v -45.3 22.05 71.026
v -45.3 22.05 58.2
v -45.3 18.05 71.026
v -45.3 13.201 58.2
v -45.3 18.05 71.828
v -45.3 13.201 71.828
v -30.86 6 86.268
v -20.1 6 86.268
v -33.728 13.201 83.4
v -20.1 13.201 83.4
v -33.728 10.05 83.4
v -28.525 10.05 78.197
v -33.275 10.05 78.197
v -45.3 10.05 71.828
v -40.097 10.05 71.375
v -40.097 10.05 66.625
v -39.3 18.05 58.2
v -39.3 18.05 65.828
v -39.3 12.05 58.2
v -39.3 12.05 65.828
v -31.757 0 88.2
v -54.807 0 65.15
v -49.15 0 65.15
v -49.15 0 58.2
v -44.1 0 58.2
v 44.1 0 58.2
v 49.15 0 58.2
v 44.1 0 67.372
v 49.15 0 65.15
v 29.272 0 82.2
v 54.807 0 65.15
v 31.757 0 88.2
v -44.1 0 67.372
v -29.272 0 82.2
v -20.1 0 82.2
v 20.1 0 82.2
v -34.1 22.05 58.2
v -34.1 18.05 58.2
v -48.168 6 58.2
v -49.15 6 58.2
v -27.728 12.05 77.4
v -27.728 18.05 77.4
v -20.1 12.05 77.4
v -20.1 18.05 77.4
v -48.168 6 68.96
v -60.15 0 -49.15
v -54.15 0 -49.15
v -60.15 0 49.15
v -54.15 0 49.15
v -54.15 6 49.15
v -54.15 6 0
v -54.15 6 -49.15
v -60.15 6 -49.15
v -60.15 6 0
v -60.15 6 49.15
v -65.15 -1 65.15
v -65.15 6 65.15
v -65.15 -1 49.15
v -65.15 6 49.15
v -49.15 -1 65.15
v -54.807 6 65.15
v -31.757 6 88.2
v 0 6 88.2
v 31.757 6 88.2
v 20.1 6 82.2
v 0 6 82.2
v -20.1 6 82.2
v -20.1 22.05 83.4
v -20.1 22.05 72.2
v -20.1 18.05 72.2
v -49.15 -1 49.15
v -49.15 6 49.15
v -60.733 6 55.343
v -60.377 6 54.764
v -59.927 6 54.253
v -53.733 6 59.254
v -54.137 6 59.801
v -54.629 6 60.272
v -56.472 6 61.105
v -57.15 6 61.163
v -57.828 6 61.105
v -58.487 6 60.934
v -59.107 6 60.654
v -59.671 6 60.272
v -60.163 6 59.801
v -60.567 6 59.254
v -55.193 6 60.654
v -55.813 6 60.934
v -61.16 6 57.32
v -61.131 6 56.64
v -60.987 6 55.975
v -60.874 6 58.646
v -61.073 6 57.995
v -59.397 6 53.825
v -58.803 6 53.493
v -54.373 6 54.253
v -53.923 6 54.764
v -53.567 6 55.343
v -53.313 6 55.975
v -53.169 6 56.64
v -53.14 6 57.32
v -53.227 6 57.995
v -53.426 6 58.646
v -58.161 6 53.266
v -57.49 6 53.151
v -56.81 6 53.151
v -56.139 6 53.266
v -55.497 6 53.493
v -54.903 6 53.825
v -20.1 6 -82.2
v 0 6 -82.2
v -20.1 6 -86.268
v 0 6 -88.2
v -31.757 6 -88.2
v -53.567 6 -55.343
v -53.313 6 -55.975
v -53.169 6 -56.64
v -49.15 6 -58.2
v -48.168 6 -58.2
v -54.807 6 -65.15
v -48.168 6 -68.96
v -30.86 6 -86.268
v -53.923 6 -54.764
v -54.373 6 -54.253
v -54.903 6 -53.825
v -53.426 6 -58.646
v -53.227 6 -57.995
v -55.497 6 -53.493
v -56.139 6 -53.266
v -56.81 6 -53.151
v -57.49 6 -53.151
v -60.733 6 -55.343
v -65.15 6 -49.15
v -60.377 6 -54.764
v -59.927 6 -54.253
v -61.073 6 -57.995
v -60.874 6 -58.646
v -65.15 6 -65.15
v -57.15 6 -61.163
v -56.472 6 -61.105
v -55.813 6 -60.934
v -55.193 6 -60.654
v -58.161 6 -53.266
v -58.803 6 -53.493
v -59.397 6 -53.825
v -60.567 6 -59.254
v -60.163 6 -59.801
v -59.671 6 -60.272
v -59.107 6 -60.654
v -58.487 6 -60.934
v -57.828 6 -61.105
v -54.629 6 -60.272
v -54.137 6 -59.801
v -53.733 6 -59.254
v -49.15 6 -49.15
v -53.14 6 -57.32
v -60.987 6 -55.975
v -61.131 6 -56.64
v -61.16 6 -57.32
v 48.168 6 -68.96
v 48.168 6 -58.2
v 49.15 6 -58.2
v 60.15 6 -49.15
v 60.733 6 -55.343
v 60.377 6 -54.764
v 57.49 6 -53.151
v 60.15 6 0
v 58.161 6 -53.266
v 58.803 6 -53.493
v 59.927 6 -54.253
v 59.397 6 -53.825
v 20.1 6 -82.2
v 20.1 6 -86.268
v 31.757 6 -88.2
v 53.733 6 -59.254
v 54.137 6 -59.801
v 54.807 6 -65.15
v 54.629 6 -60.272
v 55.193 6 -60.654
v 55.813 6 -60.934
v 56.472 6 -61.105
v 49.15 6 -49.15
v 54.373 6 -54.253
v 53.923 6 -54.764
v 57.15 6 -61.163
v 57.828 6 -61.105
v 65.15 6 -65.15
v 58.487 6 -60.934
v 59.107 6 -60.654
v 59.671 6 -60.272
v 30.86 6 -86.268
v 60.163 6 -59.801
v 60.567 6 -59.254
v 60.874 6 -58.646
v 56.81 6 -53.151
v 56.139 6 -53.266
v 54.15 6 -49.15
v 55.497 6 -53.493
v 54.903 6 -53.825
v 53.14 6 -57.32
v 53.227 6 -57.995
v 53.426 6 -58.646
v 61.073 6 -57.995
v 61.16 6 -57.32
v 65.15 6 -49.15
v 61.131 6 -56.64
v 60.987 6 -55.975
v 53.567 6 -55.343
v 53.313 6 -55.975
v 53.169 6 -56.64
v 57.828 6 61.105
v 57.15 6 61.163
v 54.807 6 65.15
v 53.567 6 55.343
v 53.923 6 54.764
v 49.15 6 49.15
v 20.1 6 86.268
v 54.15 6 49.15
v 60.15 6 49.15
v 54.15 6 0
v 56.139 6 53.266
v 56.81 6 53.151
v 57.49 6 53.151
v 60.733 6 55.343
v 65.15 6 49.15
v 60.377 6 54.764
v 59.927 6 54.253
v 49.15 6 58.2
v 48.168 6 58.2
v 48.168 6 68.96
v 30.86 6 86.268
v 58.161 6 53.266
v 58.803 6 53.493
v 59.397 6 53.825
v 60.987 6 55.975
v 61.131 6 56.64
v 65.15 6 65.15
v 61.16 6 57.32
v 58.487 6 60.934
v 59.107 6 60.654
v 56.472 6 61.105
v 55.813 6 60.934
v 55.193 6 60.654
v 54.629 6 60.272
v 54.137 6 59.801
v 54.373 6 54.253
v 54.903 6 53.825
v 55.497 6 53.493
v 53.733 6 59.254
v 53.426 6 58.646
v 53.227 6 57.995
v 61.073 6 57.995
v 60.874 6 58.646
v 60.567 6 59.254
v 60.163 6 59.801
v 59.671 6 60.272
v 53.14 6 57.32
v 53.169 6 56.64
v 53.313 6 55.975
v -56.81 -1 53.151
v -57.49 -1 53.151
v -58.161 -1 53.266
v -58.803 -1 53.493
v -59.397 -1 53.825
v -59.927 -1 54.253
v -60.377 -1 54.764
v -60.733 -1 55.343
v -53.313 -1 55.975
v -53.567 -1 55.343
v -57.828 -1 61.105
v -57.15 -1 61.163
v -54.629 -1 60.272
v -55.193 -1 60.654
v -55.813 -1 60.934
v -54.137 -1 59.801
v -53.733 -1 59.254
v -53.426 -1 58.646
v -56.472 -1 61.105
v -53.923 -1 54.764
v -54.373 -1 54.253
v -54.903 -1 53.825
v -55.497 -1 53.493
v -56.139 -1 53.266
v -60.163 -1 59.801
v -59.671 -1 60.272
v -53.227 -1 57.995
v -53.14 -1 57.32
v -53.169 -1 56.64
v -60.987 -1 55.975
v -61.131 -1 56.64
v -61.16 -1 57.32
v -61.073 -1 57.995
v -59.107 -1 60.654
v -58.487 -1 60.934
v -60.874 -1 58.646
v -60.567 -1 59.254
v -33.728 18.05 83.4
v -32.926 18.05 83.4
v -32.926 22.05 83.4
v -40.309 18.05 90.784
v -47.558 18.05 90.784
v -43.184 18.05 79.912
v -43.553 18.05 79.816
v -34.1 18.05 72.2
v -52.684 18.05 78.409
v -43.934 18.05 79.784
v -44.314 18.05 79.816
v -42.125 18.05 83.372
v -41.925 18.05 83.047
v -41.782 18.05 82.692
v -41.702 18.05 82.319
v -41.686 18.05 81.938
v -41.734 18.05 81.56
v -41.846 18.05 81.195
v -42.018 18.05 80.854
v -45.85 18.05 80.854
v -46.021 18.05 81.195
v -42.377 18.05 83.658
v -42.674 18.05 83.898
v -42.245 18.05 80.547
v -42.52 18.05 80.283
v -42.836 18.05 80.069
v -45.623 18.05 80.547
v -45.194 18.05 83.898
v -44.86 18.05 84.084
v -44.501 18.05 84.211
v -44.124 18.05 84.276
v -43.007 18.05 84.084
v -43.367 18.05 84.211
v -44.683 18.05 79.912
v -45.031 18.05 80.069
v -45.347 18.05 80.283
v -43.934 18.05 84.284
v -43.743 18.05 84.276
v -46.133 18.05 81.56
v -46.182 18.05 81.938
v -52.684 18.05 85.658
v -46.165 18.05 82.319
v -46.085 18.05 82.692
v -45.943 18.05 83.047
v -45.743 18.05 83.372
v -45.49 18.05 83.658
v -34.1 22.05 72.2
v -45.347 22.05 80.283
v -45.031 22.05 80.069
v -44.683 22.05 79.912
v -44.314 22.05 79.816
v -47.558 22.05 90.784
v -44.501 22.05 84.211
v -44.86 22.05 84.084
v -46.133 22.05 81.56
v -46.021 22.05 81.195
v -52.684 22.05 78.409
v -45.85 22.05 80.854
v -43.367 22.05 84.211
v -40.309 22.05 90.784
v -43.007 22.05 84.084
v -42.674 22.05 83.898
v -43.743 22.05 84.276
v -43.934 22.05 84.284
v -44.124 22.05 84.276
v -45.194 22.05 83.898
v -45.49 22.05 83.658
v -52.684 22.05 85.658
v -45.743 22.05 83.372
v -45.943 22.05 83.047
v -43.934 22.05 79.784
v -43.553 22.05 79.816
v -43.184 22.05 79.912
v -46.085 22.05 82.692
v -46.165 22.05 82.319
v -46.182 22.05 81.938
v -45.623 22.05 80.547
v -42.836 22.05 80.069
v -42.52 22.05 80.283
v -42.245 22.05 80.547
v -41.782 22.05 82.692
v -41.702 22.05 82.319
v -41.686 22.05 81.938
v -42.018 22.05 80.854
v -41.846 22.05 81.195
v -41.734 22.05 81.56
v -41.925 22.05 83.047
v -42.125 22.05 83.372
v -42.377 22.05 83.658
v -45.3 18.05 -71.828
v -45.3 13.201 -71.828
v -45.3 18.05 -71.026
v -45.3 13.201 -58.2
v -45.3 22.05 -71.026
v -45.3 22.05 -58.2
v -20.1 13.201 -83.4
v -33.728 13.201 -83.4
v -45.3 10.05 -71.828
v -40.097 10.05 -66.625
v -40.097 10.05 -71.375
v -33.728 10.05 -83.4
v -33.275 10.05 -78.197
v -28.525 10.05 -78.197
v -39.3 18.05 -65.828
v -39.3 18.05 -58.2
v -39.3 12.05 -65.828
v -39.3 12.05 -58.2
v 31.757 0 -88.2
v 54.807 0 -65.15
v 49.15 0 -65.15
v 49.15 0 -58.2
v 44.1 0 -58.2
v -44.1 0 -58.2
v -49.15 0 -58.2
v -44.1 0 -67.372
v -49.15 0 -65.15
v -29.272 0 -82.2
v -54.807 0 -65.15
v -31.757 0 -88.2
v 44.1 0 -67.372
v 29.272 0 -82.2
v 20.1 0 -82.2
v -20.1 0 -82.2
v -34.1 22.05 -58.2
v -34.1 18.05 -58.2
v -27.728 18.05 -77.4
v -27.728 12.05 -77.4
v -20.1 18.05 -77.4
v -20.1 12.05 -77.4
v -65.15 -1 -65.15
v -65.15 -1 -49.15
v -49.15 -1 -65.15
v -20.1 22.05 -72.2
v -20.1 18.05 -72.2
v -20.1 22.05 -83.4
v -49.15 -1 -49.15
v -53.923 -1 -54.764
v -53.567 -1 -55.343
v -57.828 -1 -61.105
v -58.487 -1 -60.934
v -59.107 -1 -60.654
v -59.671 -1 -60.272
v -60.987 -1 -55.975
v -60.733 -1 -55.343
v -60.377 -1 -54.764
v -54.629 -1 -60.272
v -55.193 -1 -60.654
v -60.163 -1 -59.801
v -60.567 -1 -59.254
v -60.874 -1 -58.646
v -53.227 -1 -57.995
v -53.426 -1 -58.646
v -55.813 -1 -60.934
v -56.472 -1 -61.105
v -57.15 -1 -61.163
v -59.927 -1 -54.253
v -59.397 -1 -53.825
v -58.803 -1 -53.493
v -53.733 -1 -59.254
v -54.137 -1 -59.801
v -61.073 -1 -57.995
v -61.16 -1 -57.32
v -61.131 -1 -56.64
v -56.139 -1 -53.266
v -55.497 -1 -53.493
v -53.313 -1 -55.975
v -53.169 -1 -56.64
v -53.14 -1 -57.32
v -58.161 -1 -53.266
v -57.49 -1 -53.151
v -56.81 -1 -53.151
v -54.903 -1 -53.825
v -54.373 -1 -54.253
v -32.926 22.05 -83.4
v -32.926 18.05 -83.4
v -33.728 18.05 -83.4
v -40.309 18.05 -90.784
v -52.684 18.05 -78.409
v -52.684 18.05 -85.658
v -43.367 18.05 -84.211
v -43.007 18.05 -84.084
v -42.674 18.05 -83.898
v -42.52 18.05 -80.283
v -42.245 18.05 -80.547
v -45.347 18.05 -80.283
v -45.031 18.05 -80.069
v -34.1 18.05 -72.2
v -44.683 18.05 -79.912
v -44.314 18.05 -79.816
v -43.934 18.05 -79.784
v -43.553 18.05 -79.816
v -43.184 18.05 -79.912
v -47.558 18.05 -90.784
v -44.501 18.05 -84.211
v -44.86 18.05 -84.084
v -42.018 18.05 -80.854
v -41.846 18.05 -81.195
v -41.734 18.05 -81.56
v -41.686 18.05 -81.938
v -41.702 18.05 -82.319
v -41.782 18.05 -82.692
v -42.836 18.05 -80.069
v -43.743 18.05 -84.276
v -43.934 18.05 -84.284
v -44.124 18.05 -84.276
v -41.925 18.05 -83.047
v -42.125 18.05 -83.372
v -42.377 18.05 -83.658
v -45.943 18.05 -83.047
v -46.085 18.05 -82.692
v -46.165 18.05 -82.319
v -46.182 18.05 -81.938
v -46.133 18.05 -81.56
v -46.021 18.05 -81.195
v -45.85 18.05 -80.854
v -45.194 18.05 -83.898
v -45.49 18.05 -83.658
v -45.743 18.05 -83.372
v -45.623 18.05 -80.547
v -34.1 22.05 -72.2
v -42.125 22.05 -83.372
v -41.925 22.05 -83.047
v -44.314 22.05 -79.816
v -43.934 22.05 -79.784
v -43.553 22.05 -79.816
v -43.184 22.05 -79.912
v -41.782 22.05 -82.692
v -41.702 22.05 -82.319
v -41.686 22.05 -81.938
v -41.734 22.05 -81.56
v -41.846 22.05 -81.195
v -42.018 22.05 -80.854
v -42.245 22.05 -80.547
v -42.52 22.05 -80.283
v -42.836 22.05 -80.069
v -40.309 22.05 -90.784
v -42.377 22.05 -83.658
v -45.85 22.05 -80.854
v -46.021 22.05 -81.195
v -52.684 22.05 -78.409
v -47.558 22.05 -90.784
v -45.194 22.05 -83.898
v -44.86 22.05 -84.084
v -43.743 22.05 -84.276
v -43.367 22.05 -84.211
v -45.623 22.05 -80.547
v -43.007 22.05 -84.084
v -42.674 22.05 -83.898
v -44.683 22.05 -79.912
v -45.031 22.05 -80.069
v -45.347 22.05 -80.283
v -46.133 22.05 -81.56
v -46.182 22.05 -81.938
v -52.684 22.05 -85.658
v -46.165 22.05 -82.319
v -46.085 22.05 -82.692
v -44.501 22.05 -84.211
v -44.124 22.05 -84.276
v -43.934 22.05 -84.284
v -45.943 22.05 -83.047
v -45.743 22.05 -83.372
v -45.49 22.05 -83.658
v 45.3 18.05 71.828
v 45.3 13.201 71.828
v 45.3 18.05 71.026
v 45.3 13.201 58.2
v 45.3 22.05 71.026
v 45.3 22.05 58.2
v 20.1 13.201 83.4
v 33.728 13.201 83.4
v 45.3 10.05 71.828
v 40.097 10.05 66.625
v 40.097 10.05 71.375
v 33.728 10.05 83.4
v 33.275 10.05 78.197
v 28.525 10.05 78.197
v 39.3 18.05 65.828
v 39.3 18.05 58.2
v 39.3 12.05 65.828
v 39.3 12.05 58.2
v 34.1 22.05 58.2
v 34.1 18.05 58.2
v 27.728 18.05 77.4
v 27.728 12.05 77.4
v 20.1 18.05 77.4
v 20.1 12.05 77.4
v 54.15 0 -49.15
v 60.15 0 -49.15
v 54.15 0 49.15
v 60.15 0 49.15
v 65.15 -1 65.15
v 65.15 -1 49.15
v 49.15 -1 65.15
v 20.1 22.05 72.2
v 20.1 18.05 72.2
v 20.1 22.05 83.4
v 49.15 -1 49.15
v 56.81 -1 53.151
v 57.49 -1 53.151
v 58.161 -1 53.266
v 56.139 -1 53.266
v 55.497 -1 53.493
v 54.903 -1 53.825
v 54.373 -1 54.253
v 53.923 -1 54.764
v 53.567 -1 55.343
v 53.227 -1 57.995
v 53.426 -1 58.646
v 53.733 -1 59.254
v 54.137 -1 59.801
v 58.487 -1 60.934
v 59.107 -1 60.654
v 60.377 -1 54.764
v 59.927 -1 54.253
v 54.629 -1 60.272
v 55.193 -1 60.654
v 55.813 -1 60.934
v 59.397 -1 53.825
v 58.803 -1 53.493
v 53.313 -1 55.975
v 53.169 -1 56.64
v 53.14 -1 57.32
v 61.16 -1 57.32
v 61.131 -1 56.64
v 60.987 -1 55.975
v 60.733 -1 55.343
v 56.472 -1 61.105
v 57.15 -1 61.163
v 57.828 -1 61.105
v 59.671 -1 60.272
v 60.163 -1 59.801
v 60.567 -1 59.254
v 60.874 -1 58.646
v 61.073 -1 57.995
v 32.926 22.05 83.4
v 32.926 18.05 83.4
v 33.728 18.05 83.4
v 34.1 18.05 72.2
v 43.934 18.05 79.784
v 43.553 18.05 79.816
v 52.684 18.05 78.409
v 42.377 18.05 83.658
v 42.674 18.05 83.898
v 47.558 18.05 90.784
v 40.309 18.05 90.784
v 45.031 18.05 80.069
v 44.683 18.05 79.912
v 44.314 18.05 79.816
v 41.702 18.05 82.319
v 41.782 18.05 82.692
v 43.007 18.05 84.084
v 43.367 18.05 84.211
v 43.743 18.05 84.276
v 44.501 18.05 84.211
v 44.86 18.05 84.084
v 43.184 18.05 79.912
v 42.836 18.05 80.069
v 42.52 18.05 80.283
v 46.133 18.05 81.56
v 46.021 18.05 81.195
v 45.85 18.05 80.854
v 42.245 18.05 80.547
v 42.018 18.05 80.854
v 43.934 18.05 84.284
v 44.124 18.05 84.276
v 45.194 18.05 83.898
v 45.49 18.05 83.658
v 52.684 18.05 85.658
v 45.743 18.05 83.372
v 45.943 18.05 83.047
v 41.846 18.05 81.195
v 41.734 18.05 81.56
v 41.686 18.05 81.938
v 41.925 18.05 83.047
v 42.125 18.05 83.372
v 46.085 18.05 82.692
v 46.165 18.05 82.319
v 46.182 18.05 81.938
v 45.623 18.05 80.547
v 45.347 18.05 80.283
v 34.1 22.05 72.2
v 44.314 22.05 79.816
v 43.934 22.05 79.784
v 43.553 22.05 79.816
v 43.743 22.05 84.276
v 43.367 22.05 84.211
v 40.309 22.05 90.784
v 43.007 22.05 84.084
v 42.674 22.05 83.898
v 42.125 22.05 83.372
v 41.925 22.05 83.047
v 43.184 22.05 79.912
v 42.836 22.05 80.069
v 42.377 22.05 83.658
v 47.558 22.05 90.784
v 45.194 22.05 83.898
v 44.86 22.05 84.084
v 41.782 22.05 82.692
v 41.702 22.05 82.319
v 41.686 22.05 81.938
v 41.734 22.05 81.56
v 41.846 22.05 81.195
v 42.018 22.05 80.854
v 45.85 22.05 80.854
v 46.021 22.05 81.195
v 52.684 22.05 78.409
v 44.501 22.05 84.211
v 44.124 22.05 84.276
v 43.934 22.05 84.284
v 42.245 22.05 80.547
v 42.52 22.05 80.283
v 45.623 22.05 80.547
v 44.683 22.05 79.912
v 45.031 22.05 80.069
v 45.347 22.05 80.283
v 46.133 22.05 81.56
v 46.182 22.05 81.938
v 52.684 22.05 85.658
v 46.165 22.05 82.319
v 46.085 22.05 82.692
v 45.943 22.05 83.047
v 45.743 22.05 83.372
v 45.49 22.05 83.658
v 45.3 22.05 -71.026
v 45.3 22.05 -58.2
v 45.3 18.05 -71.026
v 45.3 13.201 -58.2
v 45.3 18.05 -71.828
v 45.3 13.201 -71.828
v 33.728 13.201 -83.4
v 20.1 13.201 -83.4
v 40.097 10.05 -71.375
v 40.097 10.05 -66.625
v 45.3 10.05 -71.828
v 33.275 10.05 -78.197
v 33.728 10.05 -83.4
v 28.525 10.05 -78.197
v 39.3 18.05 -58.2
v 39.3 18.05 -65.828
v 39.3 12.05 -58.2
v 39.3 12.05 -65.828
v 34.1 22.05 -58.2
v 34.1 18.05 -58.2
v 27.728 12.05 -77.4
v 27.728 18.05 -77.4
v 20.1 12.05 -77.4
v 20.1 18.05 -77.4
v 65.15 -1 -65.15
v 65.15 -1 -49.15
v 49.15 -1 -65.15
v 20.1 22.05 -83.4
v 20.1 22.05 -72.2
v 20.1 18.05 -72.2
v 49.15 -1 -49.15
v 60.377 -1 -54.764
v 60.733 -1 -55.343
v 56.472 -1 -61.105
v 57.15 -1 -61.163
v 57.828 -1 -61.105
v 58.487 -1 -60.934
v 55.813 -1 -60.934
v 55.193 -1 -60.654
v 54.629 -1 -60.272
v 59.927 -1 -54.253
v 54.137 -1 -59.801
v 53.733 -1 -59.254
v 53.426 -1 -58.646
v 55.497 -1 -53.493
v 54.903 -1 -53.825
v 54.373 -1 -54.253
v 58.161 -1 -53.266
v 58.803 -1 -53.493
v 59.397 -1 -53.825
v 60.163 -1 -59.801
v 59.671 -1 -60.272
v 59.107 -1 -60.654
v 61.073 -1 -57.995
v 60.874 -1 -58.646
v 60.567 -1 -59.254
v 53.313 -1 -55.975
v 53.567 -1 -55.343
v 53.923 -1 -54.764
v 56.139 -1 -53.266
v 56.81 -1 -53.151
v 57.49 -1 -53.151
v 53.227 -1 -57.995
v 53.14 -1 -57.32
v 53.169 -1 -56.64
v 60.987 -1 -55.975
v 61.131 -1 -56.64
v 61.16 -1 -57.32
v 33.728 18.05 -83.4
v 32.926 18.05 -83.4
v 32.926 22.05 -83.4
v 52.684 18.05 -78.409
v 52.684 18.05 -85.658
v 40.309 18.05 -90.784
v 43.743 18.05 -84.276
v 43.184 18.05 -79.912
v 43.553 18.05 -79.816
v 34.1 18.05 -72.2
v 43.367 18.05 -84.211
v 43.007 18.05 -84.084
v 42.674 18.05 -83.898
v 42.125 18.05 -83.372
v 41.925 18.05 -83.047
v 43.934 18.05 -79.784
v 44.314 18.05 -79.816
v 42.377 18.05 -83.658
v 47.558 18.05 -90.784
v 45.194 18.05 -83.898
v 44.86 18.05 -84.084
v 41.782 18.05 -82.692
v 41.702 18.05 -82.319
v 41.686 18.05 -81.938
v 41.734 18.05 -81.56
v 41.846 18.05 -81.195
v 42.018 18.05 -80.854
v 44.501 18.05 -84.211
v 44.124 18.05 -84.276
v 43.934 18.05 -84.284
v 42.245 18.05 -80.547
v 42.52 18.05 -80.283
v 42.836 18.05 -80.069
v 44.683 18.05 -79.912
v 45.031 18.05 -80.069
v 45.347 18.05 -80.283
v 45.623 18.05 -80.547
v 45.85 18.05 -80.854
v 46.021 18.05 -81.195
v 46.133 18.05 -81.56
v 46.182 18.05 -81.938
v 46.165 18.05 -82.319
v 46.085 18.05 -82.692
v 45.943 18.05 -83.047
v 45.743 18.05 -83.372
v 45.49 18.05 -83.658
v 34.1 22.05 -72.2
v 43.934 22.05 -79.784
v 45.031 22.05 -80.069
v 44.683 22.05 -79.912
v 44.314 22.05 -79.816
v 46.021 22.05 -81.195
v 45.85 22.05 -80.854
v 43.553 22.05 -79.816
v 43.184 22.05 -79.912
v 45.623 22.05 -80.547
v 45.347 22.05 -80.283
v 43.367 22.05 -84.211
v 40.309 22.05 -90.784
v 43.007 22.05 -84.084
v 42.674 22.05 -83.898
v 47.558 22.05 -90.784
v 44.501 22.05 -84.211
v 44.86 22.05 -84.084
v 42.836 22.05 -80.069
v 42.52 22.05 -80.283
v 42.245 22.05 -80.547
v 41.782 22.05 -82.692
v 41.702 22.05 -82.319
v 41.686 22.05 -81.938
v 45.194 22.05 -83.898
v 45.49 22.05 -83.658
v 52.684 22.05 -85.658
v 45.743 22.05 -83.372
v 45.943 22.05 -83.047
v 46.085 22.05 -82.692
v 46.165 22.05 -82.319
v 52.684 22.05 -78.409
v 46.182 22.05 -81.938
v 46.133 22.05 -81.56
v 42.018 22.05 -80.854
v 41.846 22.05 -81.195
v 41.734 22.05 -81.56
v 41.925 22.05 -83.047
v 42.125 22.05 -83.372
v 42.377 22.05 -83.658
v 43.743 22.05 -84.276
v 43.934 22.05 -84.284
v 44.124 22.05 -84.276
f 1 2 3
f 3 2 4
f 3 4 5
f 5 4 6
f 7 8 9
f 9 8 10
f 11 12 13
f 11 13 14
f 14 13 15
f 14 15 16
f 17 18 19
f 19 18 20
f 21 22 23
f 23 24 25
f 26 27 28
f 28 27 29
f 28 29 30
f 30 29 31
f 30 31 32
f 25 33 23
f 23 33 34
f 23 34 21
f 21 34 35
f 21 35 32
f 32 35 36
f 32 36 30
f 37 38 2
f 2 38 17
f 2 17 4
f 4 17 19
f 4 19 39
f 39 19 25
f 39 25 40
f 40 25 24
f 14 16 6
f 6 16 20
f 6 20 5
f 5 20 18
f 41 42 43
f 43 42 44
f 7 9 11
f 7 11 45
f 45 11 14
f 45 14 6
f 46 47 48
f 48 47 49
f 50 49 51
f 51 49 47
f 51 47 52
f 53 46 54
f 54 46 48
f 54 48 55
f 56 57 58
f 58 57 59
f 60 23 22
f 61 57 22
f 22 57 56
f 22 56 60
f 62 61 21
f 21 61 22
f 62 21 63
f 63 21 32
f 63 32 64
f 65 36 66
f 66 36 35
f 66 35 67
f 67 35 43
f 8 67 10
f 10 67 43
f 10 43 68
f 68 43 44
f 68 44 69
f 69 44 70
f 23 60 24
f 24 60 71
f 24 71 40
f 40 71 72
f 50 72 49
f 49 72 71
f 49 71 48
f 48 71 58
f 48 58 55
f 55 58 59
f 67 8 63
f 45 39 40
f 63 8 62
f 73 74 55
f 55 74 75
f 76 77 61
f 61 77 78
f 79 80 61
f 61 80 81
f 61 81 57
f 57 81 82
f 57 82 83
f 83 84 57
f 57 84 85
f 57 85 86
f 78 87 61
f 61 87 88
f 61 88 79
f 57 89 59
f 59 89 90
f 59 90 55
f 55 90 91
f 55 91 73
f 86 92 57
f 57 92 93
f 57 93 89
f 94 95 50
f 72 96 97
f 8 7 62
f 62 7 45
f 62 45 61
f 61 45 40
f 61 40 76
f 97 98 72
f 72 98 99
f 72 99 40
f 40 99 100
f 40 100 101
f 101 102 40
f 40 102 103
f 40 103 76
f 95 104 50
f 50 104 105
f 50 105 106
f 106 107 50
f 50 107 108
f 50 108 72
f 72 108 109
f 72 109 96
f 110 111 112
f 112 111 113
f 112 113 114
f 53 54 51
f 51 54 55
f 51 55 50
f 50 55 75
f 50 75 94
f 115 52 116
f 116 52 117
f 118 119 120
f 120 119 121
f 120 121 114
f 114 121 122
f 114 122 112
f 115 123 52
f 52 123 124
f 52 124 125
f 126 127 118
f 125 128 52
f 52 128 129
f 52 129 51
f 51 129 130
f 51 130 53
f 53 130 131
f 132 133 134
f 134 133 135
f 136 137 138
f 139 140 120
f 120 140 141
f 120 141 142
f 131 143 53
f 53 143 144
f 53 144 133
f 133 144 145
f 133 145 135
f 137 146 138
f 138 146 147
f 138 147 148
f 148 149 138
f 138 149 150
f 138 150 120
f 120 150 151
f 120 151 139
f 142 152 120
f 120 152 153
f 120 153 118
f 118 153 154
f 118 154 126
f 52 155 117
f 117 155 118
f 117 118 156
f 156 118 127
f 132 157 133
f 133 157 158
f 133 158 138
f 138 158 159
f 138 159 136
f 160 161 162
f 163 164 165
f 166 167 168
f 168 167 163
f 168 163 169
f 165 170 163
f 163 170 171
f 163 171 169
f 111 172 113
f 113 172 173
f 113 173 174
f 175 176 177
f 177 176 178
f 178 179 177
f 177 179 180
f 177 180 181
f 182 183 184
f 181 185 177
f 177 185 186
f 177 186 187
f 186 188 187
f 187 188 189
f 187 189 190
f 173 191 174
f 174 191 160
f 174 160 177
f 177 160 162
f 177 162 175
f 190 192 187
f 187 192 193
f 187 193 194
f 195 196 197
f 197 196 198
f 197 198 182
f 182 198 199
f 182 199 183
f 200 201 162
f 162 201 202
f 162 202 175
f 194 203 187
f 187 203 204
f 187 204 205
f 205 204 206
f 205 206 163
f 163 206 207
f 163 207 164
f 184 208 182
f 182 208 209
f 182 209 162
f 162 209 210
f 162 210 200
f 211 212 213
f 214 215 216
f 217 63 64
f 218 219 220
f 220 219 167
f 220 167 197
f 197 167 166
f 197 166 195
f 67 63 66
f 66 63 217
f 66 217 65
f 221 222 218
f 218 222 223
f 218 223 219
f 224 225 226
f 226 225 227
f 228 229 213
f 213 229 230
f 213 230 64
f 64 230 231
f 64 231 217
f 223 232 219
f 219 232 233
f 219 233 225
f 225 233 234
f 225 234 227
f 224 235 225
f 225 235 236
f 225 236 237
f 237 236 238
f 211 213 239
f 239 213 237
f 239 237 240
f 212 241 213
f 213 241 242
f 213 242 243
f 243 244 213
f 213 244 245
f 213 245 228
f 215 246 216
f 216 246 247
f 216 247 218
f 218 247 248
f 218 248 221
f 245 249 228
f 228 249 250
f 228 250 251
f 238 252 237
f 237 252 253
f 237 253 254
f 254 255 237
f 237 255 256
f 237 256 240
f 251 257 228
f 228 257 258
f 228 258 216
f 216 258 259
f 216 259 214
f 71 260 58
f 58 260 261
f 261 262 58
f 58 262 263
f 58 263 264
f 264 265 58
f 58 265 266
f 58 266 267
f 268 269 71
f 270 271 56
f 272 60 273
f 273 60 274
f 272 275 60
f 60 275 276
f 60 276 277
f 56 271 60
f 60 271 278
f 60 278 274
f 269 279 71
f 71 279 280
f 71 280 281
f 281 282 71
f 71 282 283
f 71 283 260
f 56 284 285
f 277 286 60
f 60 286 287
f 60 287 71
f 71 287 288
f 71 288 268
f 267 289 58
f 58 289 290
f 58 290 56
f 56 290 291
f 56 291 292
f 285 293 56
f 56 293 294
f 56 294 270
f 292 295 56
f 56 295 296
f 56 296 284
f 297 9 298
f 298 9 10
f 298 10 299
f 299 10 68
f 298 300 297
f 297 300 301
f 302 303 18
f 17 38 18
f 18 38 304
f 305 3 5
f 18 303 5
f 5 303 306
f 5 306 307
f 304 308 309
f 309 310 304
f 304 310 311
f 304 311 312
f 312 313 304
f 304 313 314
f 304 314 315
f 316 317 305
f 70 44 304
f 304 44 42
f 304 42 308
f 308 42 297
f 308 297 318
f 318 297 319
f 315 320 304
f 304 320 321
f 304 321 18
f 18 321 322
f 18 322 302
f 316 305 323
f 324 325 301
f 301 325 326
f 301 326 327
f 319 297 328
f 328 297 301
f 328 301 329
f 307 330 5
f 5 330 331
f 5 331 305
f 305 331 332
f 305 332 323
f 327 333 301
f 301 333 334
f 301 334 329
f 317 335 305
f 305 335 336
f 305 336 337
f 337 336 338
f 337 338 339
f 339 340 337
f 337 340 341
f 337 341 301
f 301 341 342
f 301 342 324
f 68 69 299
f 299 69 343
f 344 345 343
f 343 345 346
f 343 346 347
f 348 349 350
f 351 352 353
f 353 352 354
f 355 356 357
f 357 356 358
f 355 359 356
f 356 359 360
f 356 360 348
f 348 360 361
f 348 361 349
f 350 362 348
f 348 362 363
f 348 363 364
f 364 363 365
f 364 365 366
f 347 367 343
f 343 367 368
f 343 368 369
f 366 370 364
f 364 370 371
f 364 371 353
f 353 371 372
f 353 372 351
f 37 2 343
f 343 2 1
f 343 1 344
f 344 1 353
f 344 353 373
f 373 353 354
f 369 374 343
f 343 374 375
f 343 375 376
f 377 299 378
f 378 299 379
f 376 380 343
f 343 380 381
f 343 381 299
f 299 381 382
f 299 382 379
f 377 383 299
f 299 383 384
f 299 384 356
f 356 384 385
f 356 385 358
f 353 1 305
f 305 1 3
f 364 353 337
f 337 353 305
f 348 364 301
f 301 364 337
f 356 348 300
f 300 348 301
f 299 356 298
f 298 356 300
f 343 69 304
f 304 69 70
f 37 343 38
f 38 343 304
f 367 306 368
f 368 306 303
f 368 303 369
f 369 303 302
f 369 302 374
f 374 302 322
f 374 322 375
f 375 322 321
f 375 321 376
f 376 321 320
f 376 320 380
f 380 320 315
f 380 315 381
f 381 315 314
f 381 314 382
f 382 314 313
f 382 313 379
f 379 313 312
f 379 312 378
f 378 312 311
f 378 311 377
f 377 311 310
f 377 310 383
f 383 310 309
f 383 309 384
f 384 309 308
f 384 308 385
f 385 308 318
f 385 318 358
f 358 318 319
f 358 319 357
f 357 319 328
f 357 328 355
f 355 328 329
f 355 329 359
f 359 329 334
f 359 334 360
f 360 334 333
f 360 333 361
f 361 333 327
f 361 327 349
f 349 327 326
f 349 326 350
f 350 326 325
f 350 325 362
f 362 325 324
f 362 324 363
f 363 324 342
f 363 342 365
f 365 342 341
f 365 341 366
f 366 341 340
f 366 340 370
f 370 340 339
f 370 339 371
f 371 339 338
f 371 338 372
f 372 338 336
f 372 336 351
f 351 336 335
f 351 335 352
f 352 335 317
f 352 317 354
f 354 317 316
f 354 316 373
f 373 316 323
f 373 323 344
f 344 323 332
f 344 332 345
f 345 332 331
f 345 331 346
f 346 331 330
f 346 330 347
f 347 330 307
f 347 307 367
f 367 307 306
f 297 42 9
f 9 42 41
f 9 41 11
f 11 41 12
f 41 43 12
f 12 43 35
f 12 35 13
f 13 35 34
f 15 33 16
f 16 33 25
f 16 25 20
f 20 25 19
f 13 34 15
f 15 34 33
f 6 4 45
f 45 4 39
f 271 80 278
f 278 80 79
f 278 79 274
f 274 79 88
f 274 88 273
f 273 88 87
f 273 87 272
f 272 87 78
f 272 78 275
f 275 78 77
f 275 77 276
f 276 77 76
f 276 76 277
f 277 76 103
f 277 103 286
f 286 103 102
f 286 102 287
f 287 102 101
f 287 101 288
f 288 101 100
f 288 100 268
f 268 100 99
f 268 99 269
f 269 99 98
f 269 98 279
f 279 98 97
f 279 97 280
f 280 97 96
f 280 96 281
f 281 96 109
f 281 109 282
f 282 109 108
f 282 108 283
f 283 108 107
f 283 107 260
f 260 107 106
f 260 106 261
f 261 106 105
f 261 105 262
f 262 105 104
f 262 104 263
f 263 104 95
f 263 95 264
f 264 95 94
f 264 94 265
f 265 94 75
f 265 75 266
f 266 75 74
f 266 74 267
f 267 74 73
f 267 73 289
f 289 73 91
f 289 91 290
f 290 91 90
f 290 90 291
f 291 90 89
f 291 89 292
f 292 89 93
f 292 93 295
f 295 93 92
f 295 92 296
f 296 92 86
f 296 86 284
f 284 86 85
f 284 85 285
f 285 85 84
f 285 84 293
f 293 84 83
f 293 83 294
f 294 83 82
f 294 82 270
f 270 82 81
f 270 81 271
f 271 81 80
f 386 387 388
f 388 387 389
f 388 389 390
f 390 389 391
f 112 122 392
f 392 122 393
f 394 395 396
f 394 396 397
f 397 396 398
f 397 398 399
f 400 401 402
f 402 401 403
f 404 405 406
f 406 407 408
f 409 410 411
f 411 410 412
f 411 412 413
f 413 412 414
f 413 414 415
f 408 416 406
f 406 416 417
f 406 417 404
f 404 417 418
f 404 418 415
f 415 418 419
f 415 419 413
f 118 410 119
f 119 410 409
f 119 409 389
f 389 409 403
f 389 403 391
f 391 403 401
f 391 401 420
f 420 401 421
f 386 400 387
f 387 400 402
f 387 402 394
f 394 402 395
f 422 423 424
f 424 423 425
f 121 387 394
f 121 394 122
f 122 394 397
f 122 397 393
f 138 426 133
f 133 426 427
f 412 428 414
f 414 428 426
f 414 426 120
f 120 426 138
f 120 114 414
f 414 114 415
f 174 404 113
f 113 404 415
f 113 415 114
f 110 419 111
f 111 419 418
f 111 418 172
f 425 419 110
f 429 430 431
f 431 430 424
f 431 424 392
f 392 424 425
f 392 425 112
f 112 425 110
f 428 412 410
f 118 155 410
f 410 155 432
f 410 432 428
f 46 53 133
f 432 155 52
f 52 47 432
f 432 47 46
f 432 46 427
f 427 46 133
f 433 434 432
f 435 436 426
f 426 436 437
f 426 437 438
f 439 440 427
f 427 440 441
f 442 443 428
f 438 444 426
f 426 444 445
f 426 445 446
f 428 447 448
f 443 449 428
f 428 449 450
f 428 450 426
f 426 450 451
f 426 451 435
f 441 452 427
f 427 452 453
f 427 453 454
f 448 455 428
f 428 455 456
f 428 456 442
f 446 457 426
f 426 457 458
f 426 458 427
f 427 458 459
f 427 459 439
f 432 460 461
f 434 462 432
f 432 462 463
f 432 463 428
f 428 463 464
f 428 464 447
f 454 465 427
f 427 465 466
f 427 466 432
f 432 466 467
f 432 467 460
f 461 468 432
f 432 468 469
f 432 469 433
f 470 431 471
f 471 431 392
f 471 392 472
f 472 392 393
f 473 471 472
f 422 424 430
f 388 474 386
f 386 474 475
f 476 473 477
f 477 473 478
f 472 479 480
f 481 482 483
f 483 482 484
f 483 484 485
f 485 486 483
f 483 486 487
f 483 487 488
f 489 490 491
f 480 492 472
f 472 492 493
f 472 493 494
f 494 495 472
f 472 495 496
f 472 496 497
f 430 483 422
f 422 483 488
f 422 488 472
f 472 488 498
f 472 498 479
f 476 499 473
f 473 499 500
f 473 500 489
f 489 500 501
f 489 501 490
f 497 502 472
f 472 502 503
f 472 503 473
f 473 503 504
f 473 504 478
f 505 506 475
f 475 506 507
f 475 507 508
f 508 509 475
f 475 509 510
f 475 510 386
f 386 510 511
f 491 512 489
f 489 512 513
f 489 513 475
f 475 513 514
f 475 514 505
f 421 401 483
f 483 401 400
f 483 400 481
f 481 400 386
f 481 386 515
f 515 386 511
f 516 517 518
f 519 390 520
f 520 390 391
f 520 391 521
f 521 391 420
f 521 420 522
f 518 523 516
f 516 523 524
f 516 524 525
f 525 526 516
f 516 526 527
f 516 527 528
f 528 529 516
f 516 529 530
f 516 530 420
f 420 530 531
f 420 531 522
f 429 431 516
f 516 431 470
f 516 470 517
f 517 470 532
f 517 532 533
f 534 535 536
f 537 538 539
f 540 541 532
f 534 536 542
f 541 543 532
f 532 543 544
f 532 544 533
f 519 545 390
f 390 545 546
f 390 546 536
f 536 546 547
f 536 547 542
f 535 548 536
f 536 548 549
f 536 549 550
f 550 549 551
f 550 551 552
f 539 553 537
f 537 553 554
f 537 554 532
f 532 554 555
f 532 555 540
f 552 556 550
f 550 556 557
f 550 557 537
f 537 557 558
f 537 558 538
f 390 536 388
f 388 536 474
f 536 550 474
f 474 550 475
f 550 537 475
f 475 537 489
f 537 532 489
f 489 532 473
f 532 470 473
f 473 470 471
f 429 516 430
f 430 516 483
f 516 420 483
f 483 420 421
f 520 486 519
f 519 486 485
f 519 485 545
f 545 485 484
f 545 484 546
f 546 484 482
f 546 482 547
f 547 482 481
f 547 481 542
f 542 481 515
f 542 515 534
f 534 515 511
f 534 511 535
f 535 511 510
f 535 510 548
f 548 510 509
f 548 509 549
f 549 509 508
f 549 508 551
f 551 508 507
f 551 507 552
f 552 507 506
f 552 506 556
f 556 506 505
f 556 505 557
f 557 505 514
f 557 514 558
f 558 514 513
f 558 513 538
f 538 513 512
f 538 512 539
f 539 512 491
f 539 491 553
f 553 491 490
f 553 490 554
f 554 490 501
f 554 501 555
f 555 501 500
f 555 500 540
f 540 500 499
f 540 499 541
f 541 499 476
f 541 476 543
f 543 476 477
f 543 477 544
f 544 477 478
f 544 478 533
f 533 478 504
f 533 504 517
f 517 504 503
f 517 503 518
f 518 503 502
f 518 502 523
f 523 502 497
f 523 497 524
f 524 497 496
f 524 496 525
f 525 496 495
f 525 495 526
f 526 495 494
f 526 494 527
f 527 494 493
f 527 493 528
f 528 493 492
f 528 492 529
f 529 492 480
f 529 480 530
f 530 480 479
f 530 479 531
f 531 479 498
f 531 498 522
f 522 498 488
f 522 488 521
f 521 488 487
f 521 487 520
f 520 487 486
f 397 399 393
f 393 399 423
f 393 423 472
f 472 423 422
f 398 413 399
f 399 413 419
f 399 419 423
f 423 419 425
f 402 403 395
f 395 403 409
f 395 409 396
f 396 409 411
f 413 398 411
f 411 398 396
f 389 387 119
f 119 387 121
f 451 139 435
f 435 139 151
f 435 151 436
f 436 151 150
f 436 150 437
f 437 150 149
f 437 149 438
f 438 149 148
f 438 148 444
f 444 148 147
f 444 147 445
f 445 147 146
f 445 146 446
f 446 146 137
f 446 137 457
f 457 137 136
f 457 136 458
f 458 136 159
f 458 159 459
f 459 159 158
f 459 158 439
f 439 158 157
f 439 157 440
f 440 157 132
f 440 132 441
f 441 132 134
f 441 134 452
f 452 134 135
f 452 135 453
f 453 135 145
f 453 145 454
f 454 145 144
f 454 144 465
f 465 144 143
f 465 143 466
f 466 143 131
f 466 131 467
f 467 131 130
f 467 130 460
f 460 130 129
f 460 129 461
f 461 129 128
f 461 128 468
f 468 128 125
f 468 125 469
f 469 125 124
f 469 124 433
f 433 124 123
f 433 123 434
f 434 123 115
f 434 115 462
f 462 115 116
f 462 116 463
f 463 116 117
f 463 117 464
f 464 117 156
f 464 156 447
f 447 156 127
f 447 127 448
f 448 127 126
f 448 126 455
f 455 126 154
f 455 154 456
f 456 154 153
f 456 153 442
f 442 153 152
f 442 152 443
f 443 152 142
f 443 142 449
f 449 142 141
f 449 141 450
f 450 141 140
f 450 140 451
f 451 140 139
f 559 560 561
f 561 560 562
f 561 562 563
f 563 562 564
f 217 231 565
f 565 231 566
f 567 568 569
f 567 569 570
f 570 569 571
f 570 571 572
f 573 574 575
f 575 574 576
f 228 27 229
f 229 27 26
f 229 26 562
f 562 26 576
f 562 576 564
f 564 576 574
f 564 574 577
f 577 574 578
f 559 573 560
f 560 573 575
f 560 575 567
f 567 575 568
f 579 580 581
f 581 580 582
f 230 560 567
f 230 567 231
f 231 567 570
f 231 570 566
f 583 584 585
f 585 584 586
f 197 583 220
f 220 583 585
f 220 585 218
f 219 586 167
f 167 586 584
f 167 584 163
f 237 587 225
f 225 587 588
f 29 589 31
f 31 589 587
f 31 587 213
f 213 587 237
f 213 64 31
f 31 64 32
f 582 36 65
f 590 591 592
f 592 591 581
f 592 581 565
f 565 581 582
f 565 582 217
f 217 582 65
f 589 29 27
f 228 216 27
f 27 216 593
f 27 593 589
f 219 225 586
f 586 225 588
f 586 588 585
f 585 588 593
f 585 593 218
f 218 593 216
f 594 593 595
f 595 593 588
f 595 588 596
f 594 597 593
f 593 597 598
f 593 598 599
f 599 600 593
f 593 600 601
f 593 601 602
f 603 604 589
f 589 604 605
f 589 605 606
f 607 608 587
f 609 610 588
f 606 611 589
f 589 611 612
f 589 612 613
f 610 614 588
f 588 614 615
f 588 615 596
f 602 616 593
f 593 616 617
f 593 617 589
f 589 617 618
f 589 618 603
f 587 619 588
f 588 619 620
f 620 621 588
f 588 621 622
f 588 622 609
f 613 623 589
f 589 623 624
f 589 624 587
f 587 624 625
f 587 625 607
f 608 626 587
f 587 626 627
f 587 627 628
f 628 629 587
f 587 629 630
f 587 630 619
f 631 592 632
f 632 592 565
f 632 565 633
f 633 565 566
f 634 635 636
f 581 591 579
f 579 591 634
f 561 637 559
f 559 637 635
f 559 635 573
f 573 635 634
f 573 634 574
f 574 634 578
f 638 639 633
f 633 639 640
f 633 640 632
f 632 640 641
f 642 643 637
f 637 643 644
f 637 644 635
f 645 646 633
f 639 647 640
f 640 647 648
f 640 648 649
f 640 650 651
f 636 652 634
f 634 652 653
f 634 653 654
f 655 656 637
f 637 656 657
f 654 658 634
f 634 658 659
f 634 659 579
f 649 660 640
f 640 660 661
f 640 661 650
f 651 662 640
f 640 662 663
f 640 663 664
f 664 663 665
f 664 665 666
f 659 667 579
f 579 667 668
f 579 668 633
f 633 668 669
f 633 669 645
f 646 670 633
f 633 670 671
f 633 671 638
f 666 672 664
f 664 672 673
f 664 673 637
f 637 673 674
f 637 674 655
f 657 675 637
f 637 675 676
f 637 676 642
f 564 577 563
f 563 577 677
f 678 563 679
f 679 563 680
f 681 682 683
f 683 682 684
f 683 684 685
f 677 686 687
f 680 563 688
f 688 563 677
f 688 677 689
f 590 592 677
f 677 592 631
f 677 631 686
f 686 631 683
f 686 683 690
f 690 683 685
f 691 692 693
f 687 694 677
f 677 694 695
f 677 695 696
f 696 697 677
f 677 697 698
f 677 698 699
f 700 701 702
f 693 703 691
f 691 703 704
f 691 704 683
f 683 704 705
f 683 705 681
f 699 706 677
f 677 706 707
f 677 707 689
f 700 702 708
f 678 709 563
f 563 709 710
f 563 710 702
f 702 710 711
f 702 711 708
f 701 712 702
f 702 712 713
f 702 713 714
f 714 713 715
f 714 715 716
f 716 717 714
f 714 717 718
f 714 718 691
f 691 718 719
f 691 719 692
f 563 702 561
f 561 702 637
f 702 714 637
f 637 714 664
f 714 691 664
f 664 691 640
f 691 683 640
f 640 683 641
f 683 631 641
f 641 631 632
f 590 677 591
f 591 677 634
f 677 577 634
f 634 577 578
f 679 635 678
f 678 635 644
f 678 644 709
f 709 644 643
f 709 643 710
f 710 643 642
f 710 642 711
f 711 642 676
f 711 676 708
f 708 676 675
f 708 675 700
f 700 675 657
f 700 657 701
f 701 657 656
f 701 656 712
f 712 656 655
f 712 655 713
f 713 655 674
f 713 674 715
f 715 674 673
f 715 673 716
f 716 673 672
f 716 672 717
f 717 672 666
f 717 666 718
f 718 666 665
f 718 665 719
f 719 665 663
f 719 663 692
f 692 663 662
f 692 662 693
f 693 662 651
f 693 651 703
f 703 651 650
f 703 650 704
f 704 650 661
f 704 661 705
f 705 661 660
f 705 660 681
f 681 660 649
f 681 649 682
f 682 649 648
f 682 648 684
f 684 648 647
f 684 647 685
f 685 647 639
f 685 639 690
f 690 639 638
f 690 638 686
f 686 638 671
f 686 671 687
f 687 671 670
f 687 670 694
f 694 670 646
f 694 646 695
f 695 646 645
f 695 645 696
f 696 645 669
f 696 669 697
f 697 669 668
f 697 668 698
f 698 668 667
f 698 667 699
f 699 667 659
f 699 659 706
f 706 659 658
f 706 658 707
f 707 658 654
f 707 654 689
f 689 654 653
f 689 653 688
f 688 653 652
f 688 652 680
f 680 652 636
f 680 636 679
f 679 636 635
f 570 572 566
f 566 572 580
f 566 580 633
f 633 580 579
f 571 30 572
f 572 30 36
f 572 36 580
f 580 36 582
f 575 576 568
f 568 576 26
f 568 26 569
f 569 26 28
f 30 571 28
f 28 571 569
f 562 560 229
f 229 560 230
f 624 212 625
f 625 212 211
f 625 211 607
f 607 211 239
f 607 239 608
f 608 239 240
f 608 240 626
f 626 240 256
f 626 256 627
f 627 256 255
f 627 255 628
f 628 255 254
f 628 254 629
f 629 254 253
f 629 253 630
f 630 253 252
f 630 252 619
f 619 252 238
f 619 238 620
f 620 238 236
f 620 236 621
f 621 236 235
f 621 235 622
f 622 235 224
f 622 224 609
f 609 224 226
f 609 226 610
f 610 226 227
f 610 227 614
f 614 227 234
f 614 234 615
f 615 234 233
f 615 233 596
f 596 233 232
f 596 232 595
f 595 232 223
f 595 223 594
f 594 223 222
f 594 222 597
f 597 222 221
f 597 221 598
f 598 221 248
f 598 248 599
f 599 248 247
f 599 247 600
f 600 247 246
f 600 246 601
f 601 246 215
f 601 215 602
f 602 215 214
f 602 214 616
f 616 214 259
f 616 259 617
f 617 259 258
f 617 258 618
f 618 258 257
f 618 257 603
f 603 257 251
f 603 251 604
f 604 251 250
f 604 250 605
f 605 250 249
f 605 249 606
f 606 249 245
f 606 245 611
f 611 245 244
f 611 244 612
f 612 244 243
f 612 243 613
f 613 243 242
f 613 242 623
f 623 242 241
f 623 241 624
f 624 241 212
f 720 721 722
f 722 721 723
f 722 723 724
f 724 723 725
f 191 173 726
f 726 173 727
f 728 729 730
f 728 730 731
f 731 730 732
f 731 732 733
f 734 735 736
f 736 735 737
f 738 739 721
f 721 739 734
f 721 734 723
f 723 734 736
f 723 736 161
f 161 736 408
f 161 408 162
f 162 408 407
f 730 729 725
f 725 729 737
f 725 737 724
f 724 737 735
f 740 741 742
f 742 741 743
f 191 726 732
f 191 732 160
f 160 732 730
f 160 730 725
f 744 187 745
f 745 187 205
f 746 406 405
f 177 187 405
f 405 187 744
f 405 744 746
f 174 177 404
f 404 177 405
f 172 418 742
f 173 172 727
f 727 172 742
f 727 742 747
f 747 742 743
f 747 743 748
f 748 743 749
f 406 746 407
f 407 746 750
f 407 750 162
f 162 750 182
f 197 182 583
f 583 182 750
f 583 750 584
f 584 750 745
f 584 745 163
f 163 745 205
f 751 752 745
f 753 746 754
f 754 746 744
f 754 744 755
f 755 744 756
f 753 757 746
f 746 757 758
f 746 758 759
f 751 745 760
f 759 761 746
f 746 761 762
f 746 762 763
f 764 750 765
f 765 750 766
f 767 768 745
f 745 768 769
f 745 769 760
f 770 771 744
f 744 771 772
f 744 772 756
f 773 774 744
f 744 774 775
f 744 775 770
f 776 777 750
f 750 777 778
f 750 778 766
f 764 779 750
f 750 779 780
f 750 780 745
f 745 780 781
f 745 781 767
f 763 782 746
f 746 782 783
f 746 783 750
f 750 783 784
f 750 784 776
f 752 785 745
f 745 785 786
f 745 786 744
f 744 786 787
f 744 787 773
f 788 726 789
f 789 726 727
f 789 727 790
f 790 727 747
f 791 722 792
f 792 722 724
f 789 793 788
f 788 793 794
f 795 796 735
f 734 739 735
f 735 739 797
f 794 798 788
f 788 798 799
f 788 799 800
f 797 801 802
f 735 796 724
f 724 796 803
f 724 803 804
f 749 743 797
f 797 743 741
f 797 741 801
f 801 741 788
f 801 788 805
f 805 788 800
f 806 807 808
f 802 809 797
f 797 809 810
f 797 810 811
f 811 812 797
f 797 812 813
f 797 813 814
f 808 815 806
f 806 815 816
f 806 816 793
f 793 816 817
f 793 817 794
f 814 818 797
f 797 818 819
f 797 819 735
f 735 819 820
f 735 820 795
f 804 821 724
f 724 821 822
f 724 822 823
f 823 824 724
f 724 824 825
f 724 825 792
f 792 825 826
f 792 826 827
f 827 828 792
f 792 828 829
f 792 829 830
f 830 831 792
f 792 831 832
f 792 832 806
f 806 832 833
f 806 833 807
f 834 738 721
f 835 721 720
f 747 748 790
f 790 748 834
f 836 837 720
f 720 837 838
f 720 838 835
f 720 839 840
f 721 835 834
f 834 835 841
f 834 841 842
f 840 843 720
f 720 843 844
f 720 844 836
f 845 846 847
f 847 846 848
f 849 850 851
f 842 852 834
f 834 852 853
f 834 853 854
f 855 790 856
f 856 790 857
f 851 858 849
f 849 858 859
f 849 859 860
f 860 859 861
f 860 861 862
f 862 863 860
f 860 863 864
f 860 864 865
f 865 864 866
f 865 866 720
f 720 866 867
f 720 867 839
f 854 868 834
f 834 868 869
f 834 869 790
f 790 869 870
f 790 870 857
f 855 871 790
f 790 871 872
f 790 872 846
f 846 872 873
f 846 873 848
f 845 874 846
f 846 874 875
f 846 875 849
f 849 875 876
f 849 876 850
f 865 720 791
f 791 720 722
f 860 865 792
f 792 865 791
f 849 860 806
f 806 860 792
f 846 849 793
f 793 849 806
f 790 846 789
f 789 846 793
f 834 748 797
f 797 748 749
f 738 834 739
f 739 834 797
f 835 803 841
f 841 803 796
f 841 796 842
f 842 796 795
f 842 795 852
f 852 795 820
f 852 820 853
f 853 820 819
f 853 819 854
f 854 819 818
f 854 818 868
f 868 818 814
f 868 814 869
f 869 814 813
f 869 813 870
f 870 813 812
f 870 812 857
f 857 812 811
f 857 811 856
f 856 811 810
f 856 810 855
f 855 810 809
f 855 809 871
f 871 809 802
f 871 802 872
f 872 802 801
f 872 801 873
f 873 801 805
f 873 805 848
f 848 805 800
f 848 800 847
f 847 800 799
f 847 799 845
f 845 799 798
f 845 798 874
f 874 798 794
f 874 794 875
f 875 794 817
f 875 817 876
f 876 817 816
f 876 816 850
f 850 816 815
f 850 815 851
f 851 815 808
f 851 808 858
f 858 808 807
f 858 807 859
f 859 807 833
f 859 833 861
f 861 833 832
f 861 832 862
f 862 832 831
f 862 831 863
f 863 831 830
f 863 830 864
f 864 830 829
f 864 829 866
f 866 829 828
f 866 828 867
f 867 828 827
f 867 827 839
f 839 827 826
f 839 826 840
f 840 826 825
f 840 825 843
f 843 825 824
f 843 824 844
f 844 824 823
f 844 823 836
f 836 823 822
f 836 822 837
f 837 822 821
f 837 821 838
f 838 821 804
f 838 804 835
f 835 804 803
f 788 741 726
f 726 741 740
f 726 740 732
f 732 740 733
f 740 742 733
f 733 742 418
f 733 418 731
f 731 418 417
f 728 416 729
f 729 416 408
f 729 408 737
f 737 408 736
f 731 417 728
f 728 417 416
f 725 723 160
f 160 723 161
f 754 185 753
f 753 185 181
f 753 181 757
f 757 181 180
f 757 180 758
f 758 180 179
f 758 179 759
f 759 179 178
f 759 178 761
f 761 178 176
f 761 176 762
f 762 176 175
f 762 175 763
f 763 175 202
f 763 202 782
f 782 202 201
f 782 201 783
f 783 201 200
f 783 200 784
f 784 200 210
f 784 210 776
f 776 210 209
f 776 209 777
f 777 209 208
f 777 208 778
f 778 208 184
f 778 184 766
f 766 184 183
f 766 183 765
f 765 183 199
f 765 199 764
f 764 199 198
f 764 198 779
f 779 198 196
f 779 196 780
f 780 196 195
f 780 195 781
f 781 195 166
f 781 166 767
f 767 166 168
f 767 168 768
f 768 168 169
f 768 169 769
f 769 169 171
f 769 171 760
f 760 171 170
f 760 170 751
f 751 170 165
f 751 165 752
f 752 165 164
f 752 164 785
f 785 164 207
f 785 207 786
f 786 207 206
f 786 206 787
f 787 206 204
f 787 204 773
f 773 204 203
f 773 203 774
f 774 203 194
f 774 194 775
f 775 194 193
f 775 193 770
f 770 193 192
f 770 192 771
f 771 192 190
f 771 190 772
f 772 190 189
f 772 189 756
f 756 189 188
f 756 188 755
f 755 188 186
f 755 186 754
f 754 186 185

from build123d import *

# Parameters (mm, degrees)
BOSS_EXTRUDE1_DEPTH            = 6
BOSS_EXTRUDE2_DEPTH            = 1
BOSS_EXTRUDE3_DEPTH            = 12.05
SKETCH4_R                      = 2.25
BOSS_EXTRUDE4_DEPTH            = 4
CUT_EXTRUDE1_REACH             = 87.707
SKETCH5_W                      = 16.364675298
SKETCH5_H                      = 8
CUT_EXTRUDE1_DIRECTION_2_DEPTH = 86.707273439
CUT_EXTRUDE2_DEPTH             = 9.171573
CUT_EXTRUDE3_REACH             = 114.79
SKETCH8_W                      = 3.39411255
SKETCH8_H                      = 10.05
CUT_EXTRUDE3_DIRECTION_2_REACH = 114.79
BOSS_EXTRUDE5_DEPTH            = 13.628427
CUT_EXTRUDE4_DEPTH             = 113.7898768
SKETCH12_R                     = 4.0132
CUT_EXTRUDE5_DEPTH             = 113.888407941


with BuildPart() as part:
    # Sketch1 → Boss-Extrude1 (new body)
    with BuildSketch(Plane(origin=(0, 0, 0), x_dir=(1, 0, 0), z_dir=(0, 1, 0))):
        Polygon((-54.15, 0), (-60.15, 0), (-60.15, -49.15), (-65.15, -49.15), (-65.15, -65.15), (-54.806854249, -65.15), (-31.756854249, -88.2), (0, -88.2), (0, -82.2), (-20.1, -82.2), (-20.1, -77.4), (-31.243145751, -77.4), (-39.3, -69.343145751), (-39.3, -58.2), (-49.15, -58.2), (-49.15, -49.15), (-54.15, -49.15), align=None)
    extrude(amount=BOSS_EXTRUDE1_DEPTH)

    # Sketch2 → Boss-Extrude2 (add)
    with BuildSketch(Plane.XZ):
        Polygon((-49.15, 58.2), (-49.15, 49.15), (-65.15, 49.15), (-65.15, 65.15), (-49.15, 65.15), align=None)
    extrude(amount=BOSS_EXTRUDE2_DEPTH)

    # Sketch3 → Boss-Extrude3 (add)
    with BuildSketch(Plane(origin=(0, 6, 0), x_dir=(1, 0, 0), z_dir=(0, 1, 0))):
        Polygon((-39.3, -58.2), (-45.3, -58.2), (-45.3, -71.828427125), (-33.728427125, -83.4), (-20.1, -83.4), (-20.1, -77.4), (-31.243145751, -77.4), (-39.3, -69.343145751), align=None)
    extrude(amount=BOSS_EXTRUDE3_DEPTH)

    # Sketch4 → Boss-Extrude4 (add)
    with BuildSketch(Plane(origin=(0, 18.05, 0), x_dir=(1, 0, 0), z_dir=(0, 1, 0))):
        Polygon((-45.3, -58.2), (-34.1, -58.2), (-34.1, -72.2), (-20.1, -72.2), (-20.1, -83.4), (-32.925631329, -83.4), (-40.309262274, -90.783630945), (-47.557999616, -90.783630945), (-52.683630945, -85.657999616), (-52.683630945, -78.409262274), (-45.3, -71.025631329), align=None)
        with Locations(Location((-43.933630945, -82.033630945, 0), (0, 0, 270))):
            Circle(SKETCH4_R, mode=Mode.SUBTRACT)
    extrude(amount=BOSS_EXTRUDE4_DEPTH)

    # Sketch5 → Cut-Extrude1 (cut, up to next)
    with BuildSketch(Plane(origin=(-58.564213562, 0, 58.564213562), x_dir=(0.7071067811865475, 0, 0.7071067811865477), z_dir=(-0.7071067811865477, 0, 0.7071067811865475)), mode=Mode.PRIVATE) as cut_extrude1_sk1:
        with Locations((26.940768363, 14.05)):
            Rectangle(SKETCH5_W, SKETCH5_H)
    cut_extrude1_tool1 = extrude(cut_extrude1_sk1.sketch, amount=-CUT_EXTRUDE1_REACH, mode=Mode.PRIVATE) & part.part
    add(cut_extrude1_tool1.solids().sort_by_distance((-39.514214, 14.05, 77.614214))[0], mode=Mode.SUBTRACT)

    # Sketch5 → Cut-Extrude1 direction 2 (cut)
    with BuildSketch(Plane(origin=(-58.564213562, 0, 58.564213562), x_dir=(0.7071067811865475, 0, 0.7071067811865477), z_dir=(-0.7071067811865477, 0, 0.7071067811865475))):
        with Locations((26.940768363, 14.05)):
            Rectangle(SKETCH5_W, SKETCH5_H)
    extrude(amount=CUT_EXTRUDE1_DIRECTION_2_DEPTH, mode=Mode.SUBTRACT)

    # Sketch6 → Cut-Extrude2 (cut)
    with BuildSketch(Plane(origin=(-20.1, 0, 0), x_dir=(0, 0, -1), z_dir=(1, 0, 0))):
        Polygon((-82.2, 0), (-77.4, 12.05), (-77.4, 0), align=None)
    cut_extrude2 = extrude(amount=-CUT_EXTRUDE2_DEPTH, mode=Mode.SUBTRACT)

    # Mirror1: Cut-Extrude2 across plane
    add(cut_extrude2.mirror(Plane(origin=(19.05, 0, 19.05), x_dir=(-0.7071067811865477, 0, 0.7071067811865474), z_dir=(0.7071067811865476, 0, 0.7071067811865476))), mode=Mode.SUBTRACT)

    # Cut-Extrude3: up to this plane
    cut_extrude3_end = Plane(origin=(-44.1, 0, 67.371572875), z_dir=(0.9290074363039443, -0.3700610534654694, 0))
    # Sketch8 → Cut-Extrude3 (cut, up to the surface)
    with BuildSketch(Plane(origin=(19.05, 0, 19.05), x_dir=(0.7071067811865476, 0, -0.7071067811865476), z_dir=(0.7071067811865476, 0, 0.7071067811865476)), mode=Mode.PRIVATE) as cut_extrude3_sk1:
        with Locations((-77.125248815, 5.025)):
            Rectangle(SKETCH8_W, SKETCH8_H)
    cut_extrude3_tool1 = split(extrude(cut_extrude3_sk1.sketch, amount=-CUT_EXTRUDE3_REACH, mode=Mode.PRIVATE), bisect_by=cut_extrude3_end, keep=Keep.BOTH, mode=Mode.PRIVATE)
    add(cut_extrude3_tool1.solids().sort_by_distance((-35.485786, 5.025, 73.585786))[0], mode=Mode.SUBTRACT)

    # Cut-Extrude3 direction 2: up to this plane
    cut_extrude3_direction_2_end = Plane(origin=(-29.271572875, 0, 82.2), z_dir=(0, 0.3700610534654694, 0.9290074363039443))
    # Sketch8 → Cut-Extrude3 direction 2 (cut, up to the surface)
    with BuildSketch(Plane(origin=(19.05, 0, 19.05), x_dir=(0.7071067811865476, 0, -0.7071067811865476), z_dir=(0.7071067811865476, 0, 0.7071067811865476)), mode=Mode.PRIVATE) as cut_extrude3_direction_2_sk1:
        with Locations((-77.125248815, 5.025)):
            Rectangle(SKETCH8_W, SKETCH8_H)
    cut_extrude3_direction_2_tool1 = split(extrude(cut_extrude3_direction_2_sk1.sketch, amount=CUT_EXTRUDE3_DIRECTION_2_REACH, mode=Mode.PRIVATE), bisect_by=cut_extrude3_direction_2_end, keep=Keep.BOTH, mode=Mode.PRIVATE)
    add(cut_extrude3_direction_2_tool1.solids().sort_by_distance((-35.485786, 5.025, 73.585786))[0], mode=Mode.SUBTRACT)

    # Sketch10 → Boss-Extrude5 (add)
    with BuildSketch(Plane(origin=(-20.1, 0, 0), x_dir=(0, 0, -1), z_dir=(1, 0, 0))):
        Polygon((-83.4, 13.20104083), (-86.268464397, 6), (-83.4, 6), align=None)
    boss_extrude5 = extrude(amount=-BOSS_EXTRUDE5_DEPTH)

    # Sketch11 → Cut-Extrude4 (cut, through all)
    with BuildSketch(Plane(origin=(19.05, 0, 19.05), x_dir=(0.7071067811865476, 0, -0.7071067811865476), z_dir=(0.7071067811865476, 0, 0.7071067811865476))):
        Polygon((-82.82230509, 13.20104083), (-84.850615716, 6), (-82.82230509, 6), align=None)
    cut_extrude4 = extrude(amount=CUT_EXTRUDE4_DEPTH, mode=Mode.SUBTRACT)

    # Mirror2: Boss-Extrude5, Cut-Extrude4 across plane
    add(boss_extrude5.mirror(Plane(origin=(19.05, 0, 19.05), x_dir=(-0.7071067811865477, 0, 0.7071067811865474), z_dir=(0.7071067811865476, 0, 0.7071067811865476))))
    add(cut_extrude4.mirror(Plane(origin=(19.05, 0, 19.05), x_dir=(-0.7071067811865477, 0, 0.7071067811865474), z_dir=(0.7071067811865476, 0, 0.7071067811865476))), mode=Mode.SUBTRACT)

    # Sketch12 → Cut-Extrude5 (cut, through all)
    with BuildSketch(Plane(origin=(0, 6, 0), x_dir=(1, 0, 0), z_dir=(0, 1, 0))):
        with Locations(Location((-57.15, -57.15, 0), (0, 0, 270))):
            Circle(SKETCH12_R)
    extrude(amount=-CUT_EXTRUDE5_DEPTH, mode=Mode.SUBTRACT)

    # Mirror3: part across plane


with BuildPart() as part_1:
    add(part.part)
    add(part.part.mirror(Plane(origin=(-54.15, 6, 0), x_dir=(1, 0, 0), z_dir=(0, 0, 1))))

    # Mirror4: part across plane


with BuildPart() as part_2:
    add(part_1.part)
    add(part_1.part.mirror(Plane(origin=(0, 6, -88.2), x_dir=(0, 0, 1), z_dir=(-1, 0, 0))))


solid = part_2.part
